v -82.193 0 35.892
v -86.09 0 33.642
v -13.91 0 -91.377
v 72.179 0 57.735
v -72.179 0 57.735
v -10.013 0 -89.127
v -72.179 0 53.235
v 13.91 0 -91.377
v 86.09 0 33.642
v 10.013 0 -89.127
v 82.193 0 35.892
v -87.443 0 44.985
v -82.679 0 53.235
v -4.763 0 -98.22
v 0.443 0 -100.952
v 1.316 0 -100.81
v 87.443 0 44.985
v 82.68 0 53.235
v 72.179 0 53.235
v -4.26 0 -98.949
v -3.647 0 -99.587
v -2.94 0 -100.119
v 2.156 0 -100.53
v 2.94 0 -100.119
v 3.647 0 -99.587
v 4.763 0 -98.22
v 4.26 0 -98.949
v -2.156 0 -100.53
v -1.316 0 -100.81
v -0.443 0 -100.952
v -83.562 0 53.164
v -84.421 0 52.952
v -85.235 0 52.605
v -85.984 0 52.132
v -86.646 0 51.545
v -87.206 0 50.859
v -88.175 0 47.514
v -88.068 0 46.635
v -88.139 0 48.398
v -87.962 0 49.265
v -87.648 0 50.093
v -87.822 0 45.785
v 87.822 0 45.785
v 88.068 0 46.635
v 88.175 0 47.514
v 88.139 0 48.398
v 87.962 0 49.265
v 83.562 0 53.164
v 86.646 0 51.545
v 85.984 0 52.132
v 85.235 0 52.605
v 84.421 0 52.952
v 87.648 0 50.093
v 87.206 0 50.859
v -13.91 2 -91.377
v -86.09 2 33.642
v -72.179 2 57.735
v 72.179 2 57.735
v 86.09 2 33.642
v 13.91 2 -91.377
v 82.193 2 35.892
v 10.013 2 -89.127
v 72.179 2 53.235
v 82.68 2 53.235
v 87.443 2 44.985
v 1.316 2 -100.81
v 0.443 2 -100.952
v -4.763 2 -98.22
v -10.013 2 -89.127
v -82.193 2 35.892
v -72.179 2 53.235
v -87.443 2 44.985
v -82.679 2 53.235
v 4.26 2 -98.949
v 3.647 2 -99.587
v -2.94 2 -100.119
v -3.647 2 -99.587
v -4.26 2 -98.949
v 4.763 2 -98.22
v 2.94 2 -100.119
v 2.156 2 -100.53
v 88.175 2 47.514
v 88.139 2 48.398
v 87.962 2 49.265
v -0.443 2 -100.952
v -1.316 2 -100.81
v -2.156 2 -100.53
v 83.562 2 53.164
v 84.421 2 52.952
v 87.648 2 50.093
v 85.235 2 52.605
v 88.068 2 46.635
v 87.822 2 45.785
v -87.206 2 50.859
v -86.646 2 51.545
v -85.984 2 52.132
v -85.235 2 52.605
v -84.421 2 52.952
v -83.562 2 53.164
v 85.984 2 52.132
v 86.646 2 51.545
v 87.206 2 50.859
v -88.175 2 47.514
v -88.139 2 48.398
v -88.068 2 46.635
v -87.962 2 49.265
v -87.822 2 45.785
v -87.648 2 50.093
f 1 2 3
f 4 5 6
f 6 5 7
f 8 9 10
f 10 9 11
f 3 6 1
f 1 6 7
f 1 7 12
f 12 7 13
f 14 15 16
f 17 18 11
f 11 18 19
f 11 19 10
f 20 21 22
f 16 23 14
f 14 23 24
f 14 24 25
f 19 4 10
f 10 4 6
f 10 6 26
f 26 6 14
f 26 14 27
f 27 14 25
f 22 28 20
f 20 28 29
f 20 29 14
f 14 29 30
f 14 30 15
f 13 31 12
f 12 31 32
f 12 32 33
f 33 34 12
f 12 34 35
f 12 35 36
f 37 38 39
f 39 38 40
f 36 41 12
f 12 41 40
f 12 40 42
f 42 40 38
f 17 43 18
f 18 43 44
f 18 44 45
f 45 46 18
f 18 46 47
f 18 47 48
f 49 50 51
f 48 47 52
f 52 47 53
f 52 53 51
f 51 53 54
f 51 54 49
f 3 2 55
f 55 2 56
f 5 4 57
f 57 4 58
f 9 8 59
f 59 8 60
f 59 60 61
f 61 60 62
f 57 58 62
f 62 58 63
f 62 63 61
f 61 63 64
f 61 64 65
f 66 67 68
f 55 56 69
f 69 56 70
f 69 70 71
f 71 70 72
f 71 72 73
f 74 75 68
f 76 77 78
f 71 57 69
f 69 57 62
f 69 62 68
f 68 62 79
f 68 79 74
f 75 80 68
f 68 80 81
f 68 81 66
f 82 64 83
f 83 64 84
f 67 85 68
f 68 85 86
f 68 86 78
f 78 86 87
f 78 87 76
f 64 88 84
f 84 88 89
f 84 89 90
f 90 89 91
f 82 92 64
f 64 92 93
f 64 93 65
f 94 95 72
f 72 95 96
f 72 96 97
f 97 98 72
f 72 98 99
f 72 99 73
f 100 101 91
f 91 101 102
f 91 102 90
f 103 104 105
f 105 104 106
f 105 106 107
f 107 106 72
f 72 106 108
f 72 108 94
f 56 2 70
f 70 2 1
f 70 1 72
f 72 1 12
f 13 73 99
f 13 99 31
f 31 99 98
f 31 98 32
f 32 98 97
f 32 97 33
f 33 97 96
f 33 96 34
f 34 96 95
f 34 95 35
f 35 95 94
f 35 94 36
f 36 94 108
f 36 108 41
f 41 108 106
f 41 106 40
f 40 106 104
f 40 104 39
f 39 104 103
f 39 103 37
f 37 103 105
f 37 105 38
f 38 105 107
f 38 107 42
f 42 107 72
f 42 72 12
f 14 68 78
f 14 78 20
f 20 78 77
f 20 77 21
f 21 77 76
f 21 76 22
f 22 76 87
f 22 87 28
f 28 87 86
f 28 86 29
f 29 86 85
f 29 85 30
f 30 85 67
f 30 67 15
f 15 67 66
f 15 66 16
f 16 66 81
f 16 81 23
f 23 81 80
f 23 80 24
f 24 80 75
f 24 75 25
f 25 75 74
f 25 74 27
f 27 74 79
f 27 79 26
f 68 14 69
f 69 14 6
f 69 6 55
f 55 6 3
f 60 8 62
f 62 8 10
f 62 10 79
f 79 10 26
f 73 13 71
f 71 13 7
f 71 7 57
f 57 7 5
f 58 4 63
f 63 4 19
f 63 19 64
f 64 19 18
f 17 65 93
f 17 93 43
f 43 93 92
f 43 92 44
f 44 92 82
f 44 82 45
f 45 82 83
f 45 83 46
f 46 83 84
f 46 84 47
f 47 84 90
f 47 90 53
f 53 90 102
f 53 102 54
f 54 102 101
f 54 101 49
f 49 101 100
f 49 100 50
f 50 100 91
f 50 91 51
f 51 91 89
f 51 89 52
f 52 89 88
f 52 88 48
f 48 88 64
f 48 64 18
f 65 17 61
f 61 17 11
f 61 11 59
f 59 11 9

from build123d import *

# Parameters (mm, degrees)
BOSS_EXTRUDE2_DEPTH = 2
CUT_EXTRUDE1_START  = -5
CUT_EXTRUDE1_DEPTH  = 5
CIRPATTERN1_COUNT   = 3


with BuildPart() as part:
    # Sketch2 → Boss-Extrude2 (new body)
    with BuildSketch(Plane(origin=(0, 0, 0), x_dir=(1, 0, 0), z_dir=(0, 1, 0))):
        with BuildLine():
            ThreePointArc((8.660254038, 100.470053838), (0, 105.470053838), (-8.660254038, 100.470053838))
            Line((-8.660254038, 100.470053838), (-91.339745962, -42.735026919))
            ThreePointArc((-91.339745962, -42.735026919), (-91.339745962, -52.735026919), (-82.679491924, -57.735026919))
            Line((-82.679491924, -57.735026919), (82.679491924, -57.735026919))
            ThreePointArc((82.679491924, -57.735026919), (91.339745962, -52.735026919), (91.339745962, -42.735026919))
            Line((91.339745962, -42.735026919), (8.660254038, 100.470053838))
        make_face()
    extrude(amount=BOSS_EXTRUDE2_DEPTH)

    # Sketch6 → Cut-Extrude1 (cut)
    with BuildSketch(Plane(origin=(0, 2, 0), x_dir=(1, 0, 0), z_dir=(0, 1, 0)).offset(CUT_EXTRUDE1_START)):
        with BuildLine():
            Line((-8.660254038, 100.470053838), (-13.660254038, 91.8097998))
            Line((-13.660254038, 91.8097998), (-13.910254038, 91.376787098))
            Line((-13.910254038, 91.376787098), (-10.013139721, 89.126787098))
            Line((-10.013139721, 89.126787098), (-4.763139721, 98.220053838))
            ThreePointArc((-4.763139721, 98.220053838), (-2.75, 100.233193559), (0, 100.970053838))
            Line((0, 100.970053838), (0, 101.470053838))
            Line((0, 101.470053838), (0, 105.470053838))
            ThreePointArc((0, 105.470053838), (-5, 104.130307876), (-8.660254038, 100.470053838))
        make_face()
        with BuildLine():
            Line((-91.339745962, -42.735026919), (-86.339745962, -34.074772881))
            Line((-86.339745962, -34.074772881), (-86.089745962, -33.641760179))
            Line((-86.089745962, -33.641760179), (-82.192631645, -35.891760179))
            Line((-82.192631645, -35.891760179), (-87.442631645, -44.985026919))
            ThreePointArc((-87.442631645, -44.985026919), (-88.173795368, -47.985286122), (-87.172908415, -50.906652408))
            Line((-87.172908415, -50.906652408), (-91.089745962, -53.168039621))
            Line((-91.089745962, -53.168039621), (-91.339745962, -52.735026919))
            ThreePointArc((-91.339745962, -52.735026919), (-92.679491924, -47.735026919), (-91.339745962, -42.735026919))
        make_face()
    cut_extrude1 = extrude(amount=CUT_EXTRUDE1_DEPTH, mode=Mode.SUBTRACT)

    # CirPattern1: Cut-Extrude1 ×3 about axis
    cirpattern1_axis = Axis((0, 0, 0), (0, 1, 0))
    for i in range(1, CIRPATTERN1_COUNT):
        add(cut_extrude1.rotate(cirpattern1_axis, i * 360 / CIRPATTERN1_COUNT), mode=Mode.SUBTRACT)


solid = part.part
